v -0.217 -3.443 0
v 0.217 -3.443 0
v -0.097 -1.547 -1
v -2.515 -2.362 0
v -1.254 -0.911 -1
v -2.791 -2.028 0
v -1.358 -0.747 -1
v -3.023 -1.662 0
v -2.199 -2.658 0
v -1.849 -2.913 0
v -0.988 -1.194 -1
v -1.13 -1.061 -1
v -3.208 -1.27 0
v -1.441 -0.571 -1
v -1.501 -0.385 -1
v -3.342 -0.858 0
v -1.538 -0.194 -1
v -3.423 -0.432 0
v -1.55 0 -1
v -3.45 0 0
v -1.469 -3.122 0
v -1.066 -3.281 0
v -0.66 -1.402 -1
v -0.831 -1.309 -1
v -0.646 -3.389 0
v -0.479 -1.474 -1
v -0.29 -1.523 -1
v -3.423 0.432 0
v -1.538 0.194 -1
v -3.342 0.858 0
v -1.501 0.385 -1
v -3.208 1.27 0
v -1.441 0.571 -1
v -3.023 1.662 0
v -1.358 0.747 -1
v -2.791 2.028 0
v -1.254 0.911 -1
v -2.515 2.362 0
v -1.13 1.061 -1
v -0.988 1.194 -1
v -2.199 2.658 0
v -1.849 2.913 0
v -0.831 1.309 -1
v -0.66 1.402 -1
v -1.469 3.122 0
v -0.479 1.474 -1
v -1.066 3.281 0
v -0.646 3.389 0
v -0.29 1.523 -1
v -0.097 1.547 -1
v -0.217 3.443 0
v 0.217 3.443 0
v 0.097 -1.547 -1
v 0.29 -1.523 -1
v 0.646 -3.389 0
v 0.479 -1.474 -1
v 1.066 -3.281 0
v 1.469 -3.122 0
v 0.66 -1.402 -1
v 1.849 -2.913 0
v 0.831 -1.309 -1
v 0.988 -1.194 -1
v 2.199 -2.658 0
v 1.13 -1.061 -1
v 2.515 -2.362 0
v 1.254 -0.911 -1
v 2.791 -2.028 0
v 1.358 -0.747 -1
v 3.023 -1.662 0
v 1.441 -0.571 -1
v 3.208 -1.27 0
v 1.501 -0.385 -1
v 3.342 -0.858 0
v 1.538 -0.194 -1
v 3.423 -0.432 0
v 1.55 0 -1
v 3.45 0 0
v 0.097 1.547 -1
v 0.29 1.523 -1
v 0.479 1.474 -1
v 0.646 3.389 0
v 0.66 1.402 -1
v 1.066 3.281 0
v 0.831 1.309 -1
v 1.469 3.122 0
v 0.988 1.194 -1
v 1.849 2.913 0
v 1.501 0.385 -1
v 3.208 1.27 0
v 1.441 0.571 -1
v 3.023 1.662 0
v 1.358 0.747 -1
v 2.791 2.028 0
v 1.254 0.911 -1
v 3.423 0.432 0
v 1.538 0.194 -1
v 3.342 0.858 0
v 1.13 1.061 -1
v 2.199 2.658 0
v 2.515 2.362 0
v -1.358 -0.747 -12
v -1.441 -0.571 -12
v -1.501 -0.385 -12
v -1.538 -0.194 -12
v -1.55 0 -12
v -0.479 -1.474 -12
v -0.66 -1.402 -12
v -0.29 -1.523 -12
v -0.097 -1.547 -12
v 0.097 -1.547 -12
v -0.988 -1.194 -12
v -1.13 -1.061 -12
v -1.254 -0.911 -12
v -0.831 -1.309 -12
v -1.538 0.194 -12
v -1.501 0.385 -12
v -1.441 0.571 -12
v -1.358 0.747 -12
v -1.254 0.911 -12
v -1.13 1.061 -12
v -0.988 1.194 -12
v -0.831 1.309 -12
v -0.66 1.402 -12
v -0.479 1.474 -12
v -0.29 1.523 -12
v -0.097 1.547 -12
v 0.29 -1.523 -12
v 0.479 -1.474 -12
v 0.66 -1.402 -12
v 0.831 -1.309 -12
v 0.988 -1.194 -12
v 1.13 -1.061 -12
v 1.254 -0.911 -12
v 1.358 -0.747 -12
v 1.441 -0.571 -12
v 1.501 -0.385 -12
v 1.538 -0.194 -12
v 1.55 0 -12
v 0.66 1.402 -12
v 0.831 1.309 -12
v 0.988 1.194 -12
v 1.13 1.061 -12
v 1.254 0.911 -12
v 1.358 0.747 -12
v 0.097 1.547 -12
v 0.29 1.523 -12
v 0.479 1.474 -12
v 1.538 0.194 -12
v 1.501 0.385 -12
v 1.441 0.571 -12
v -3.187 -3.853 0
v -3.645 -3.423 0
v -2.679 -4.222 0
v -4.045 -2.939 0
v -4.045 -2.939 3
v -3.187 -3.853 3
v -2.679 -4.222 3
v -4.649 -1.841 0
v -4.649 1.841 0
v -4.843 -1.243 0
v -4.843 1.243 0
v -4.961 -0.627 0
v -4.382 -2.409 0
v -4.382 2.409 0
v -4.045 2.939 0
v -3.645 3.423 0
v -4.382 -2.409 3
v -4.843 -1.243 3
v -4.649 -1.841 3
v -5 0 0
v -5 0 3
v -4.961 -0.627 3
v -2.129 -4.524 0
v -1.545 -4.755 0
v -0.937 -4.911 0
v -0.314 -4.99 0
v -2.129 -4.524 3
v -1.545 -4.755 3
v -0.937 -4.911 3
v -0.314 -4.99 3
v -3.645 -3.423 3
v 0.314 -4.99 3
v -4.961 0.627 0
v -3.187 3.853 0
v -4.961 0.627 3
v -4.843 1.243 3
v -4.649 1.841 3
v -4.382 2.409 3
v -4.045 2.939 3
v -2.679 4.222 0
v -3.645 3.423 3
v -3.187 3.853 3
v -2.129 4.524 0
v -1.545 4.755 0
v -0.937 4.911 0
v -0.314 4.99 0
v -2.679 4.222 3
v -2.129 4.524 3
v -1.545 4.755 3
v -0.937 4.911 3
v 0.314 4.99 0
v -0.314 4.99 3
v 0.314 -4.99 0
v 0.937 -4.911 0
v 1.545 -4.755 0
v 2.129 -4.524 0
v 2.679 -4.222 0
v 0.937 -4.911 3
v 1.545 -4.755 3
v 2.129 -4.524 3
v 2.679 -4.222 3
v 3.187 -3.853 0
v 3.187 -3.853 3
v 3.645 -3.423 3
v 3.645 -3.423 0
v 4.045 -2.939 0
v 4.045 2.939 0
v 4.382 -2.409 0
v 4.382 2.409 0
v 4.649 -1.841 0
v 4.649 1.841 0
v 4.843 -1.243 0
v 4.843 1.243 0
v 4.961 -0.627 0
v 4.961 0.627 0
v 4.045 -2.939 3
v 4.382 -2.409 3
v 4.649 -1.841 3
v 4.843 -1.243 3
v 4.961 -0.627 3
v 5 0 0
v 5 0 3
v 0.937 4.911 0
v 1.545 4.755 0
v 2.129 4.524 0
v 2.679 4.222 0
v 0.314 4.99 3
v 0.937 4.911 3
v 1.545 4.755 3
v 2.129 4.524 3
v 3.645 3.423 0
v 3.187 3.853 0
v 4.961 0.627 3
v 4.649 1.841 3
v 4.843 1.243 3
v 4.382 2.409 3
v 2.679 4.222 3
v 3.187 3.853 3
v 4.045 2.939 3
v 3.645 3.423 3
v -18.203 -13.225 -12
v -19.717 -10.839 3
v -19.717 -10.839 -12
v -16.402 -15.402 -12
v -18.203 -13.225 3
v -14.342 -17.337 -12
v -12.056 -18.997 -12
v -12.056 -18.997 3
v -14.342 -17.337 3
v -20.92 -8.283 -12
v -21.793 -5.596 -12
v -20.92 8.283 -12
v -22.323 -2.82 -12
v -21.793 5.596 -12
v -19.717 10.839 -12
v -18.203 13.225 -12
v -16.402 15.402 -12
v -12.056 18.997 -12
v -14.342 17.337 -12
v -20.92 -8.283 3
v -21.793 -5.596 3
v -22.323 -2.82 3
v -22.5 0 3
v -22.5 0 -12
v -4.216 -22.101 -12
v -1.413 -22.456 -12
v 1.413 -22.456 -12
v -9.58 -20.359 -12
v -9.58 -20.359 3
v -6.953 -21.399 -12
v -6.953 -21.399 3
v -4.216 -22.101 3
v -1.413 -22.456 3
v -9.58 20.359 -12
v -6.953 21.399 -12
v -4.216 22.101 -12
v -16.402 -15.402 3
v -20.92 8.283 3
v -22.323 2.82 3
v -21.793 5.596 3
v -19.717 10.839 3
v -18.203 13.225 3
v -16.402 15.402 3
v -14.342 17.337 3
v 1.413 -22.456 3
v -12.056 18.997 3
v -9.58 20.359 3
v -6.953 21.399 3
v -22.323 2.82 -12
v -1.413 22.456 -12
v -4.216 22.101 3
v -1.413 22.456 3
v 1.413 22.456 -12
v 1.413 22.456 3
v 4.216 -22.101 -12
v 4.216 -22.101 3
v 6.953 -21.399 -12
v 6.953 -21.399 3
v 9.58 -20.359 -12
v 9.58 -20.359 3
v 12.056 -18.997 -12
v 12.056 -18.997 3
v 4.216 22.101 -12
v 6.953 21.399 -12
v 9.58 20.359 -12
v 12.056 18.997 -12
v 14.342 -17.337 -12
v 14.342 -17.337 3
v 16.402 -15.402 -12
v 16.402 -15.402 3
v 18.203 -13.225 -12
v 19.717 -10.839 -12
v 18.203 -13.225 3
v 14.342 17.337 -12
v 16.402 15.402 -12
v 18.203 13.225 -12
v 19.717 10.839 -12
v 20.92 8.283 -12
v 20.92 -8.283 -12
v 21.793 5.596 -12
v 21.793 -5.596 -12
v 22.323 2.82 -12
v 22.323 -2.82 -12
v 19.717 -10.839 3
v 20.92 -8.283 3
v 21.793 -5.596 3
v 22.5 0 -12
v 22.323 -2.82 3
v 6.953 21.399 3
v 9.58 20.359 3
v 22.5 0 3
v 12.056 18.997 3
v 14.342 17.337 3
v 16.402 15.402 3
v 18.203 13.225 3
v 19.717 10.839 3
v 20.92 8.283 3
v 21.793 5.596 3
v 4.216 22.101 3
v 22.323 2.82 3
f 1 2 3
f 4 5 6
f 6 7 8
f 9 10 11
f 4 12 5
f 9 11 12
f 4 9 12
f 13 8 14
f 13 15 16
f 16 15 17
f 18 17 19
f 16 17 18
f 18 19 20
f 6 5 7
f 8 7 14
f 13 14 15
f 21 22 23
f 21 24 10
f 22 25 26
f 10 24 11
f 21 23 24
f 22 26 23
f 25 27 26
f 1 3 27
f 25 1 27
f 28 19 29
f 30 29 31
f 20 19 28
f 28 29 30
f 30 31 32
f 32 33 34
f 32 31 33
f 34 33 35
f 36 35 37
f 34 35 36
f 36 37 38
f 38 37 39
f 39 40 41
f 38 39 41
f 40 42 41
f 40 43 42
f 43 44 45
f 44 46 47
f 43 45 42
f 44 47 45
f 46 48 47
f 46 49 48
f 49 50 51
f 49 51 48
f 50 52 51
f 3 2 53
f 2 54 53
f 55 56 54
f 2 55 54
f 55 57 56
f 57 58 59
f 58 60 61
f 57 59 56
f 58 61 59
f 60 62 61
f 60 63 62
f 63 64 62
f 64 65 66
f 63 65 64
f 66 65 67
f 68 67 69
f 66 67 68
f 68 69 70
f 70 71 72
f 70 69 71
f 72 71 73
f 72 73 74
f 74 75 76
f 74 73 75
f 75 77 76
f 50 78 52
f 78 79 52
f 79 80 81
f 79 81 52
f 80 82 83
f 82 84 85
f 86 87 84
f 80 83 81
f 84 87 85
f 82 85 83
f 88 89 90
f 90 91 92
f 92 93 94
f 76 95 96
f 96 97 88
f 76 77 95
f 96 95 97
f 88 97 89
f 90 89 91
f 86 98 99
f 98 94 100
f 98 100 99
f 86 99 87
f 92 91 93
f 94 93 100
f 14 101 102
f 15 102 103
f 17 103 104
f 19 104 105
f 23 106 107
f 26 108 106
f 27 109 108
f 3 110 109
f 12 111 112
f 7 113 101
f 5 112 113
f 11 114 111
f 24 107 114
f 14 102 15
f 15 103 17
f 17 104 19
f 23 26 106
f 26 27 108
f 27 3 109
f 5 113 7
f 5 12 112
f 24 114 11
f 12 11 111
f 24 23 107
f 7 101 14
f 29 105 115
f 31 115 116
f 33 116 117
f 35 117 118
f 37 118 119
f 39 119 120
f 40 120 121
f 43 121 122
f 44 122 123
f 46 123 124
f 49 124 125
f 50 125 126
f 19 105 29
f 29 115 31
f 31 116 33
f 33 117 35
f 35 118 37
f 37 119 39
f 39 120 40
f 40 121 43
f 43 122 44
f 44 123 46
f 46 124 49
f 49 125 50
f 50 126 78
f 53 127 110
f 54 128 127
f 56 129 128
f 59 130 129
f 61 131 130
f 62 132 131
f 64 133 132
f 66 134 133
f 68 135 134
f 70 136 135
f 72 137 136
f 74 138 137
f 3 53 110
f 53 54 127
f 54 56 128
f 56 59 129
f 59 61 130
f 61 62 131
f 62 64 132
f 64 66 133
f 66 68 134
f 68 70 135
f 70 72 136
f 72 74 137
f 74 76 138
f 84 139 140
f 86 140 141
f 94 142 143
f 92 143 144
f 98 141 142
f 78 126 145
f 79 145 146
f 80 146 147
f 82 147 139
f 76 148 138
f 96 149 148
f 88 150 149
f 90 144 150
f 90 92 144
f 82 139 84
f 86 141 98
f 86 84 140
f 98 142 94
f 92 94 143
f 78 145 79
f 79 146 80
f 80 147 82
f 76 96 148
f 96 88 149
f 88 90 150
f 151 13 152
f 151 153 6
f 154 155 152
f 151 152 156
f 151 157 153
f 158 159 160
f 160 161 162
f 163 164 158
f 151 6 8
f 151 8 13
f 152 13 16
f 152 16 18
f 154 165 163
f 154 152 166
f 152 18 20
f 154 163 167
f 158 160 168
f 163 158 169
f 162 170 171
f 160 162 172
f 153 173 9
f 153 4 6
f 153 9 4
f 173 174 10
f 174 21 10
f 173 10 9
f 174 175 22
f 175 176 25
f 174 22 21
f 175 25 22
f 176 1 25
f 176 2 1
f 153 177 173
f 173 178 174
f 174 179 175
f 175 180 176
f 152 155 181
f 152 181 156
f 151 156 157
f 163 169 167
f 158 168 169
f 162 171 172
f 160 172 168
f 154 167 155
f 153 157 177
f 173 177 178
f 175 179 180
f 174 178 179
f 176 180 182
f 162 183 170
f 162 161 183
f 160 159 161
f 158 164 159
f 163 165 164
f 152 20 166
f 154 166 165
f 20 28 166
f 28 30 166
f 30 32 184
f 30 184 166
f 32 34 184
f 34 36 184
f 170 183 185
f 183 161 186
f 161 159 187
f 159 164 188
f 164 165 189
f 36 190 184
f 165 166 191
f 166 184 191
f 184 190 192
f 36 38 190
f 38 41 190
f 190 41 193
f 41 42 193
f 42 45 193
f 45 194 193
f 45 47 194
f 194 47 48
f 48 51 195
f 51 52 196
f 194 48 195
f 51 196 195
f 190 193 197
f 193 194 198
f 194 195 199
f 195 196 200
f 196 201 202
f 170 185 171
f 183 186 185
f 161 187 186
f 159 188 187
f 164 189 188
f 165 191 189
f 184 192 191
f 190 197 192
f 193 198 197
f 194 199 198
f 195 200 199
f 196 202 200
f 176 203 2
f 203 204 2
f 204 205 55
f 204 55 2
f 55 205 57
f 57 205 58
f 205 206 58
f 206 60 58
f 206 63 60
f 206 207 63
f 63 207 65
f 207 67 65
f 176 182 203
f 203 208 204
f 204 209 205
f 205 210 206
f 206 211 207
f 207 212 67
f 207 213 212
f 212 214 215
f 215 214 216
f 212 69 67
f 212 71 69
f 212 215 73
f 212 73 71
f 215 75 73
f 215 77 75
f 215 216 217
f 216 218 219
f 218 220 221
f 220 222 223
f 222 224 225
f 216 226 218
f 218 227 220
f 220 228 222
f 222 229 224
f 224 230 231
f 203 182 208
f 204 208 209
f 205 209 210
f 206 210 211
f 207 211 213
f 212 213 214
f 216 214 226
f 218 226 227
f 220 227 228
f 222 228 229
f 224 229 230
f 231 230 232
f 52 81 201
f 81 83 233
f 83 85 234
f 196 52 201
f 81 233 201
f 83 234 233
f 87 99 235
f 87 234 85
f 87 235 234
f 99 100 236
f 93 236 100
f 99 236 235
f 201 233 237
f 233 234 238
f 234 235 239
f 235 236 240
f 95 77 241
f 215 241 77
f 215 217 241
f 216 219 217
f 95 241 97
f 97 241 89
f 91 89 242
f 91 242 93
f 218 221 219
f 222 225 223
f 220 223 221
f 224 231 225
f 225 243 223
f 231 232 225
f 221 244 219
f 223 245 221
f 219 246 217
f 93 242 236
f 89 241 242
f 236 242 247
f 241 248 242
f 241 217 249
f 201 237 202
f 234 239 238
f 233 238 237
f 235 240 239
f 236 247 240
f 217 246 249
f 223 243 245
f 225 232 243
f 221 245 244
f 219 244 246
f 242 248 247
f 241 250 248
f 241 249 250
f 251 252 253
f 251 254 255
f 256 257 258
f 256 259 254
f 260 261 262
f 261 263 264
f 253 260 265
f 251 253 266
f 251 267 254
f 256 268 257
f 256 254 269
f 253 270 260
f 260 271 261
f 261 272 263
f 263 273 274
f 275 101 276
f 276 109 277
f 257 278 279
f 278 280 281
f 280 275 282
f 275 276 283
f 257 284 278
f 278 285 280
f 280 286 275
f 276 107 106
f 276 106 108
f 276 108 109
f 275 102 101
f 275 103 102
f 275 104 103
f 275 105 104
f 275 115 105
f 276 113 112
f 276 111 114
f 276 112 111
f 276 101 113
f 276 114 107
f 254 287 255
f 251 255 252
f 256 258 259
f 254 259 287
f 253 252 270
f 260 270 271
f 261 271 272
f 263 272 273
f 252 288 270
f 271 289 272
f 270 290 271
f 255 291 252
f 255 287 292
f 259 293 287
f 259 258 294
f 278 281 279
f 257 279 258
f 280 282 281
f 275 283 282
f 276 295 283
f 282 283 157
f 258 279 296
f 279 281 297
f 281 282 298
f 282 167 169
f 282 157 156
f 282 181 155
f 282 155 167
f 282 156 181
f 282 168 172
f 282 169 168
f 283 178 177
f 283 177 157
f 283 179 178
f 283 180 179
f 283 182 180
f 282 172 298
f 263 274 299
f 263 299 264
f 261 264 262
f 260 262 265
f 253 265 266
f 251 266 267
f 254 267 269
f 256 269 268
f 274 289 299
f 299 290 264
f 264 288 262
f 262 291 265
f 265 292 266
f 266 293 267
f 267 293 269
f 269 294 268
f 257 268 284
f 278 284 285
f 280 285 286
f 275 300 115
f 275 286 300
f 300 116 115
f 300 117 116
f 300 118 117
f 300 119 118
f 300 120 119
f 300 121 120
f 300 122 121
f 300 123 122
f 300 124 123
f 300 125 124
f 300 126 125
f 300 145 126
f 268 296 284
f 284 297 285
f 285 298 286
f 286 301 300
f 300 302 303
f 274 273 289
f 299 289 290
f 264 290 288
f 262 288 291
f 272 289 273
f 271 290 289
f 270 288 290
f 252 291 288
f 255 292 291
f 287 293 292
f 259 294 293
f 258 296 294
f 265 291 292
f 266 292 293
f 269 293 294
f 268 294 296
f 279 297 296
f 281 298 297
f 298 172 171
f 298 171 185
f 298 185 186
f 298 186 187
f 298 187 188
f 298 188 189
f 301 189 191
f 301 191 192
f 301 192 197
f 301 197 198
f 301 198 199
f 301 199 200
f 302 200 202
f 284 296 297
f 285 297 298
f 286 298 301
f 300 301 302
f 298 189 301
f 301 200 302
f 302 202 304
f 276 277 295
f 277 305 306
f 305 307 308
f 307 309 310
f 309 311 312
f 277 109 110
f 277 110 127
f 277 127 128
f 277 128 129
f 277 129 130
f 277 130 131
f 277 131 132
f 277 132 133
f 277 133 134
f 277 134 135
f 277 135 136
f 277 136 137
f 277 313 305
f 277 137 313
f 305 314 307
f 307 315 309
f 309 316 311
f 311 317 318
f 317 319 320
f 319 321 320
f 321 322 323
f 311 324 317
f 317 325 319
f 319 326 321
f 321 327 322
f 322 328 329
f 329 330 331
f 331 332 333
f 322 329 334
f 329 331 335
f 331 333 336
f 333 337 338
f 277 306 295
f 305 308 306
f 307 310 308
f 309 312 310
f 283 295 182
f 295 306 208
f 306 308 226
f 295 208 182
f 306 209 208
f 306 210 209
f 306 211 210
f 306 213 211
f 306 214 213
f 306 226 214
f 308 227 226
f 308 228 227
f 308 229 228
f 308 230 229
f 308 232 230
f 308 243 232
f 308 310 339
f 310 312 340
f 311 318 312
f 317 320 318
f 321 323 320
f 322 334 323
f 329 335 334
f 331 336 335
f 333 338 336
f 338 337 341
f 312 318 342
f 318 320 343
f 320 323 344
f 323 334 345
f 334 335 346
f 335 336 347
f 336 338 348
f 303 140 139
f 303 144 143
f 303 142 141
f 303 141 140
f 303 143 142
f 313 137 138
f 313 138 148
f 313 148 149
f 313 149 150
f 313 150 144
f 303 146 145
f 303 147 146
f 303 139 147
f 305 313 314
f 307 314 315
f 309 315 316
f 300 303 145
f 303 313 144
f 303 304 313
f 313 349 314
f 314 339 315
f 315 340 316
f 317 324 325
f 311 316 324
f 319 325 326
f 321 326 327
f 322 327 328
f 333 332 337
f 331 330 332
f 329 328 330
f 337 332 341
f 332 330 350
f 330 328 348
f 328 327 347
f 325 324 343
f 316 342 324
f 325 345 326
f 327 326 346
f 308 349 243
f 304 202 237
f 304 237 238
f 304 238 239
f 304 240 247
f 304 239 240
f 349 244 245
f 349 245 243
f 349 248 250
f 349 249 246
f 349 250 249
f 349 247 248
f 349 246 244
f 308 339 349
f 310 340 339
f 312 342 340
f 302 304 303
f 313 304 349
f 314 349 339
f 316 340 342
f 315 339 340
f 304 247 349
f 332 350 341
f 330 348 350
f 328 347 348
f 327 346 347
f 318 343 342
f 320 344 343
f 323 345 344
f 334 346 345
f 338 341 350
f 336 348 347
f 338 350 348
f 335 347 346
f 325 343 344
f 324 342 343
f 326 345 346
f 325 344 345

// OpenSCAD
$fn = 50;

difference() {
	union() {
		translate(v = [0, 0, -12.0]) {
			cylinder(h = 15, r = 22.5);
		}
	}
	union() {
		translate(v = [0, 0, 0]) {
			rotate(a = [0, 0, 0]) {
				difference() {
					union() {
						translate(v = [0, 0, -15.0]) {
							cylinder(h = 15, r = 1.25);
						}
						translate(v = [0, 0, -1.0]) {
							cylinder(h = 1.0, r1 = 1.55, r2 = 3.45);
						}
						translate(v = [0, 0, -15.0]) {
							cylinder(h = 15, r = 1.55);
						}
						translate(v = [0, 0, -15.0]) {
							cylinder(h = 15, r = 1.25);
						}
					}
					union();
				}
			}
		}
		#cylinder(h = 3, r = 5.0);
	}
}
